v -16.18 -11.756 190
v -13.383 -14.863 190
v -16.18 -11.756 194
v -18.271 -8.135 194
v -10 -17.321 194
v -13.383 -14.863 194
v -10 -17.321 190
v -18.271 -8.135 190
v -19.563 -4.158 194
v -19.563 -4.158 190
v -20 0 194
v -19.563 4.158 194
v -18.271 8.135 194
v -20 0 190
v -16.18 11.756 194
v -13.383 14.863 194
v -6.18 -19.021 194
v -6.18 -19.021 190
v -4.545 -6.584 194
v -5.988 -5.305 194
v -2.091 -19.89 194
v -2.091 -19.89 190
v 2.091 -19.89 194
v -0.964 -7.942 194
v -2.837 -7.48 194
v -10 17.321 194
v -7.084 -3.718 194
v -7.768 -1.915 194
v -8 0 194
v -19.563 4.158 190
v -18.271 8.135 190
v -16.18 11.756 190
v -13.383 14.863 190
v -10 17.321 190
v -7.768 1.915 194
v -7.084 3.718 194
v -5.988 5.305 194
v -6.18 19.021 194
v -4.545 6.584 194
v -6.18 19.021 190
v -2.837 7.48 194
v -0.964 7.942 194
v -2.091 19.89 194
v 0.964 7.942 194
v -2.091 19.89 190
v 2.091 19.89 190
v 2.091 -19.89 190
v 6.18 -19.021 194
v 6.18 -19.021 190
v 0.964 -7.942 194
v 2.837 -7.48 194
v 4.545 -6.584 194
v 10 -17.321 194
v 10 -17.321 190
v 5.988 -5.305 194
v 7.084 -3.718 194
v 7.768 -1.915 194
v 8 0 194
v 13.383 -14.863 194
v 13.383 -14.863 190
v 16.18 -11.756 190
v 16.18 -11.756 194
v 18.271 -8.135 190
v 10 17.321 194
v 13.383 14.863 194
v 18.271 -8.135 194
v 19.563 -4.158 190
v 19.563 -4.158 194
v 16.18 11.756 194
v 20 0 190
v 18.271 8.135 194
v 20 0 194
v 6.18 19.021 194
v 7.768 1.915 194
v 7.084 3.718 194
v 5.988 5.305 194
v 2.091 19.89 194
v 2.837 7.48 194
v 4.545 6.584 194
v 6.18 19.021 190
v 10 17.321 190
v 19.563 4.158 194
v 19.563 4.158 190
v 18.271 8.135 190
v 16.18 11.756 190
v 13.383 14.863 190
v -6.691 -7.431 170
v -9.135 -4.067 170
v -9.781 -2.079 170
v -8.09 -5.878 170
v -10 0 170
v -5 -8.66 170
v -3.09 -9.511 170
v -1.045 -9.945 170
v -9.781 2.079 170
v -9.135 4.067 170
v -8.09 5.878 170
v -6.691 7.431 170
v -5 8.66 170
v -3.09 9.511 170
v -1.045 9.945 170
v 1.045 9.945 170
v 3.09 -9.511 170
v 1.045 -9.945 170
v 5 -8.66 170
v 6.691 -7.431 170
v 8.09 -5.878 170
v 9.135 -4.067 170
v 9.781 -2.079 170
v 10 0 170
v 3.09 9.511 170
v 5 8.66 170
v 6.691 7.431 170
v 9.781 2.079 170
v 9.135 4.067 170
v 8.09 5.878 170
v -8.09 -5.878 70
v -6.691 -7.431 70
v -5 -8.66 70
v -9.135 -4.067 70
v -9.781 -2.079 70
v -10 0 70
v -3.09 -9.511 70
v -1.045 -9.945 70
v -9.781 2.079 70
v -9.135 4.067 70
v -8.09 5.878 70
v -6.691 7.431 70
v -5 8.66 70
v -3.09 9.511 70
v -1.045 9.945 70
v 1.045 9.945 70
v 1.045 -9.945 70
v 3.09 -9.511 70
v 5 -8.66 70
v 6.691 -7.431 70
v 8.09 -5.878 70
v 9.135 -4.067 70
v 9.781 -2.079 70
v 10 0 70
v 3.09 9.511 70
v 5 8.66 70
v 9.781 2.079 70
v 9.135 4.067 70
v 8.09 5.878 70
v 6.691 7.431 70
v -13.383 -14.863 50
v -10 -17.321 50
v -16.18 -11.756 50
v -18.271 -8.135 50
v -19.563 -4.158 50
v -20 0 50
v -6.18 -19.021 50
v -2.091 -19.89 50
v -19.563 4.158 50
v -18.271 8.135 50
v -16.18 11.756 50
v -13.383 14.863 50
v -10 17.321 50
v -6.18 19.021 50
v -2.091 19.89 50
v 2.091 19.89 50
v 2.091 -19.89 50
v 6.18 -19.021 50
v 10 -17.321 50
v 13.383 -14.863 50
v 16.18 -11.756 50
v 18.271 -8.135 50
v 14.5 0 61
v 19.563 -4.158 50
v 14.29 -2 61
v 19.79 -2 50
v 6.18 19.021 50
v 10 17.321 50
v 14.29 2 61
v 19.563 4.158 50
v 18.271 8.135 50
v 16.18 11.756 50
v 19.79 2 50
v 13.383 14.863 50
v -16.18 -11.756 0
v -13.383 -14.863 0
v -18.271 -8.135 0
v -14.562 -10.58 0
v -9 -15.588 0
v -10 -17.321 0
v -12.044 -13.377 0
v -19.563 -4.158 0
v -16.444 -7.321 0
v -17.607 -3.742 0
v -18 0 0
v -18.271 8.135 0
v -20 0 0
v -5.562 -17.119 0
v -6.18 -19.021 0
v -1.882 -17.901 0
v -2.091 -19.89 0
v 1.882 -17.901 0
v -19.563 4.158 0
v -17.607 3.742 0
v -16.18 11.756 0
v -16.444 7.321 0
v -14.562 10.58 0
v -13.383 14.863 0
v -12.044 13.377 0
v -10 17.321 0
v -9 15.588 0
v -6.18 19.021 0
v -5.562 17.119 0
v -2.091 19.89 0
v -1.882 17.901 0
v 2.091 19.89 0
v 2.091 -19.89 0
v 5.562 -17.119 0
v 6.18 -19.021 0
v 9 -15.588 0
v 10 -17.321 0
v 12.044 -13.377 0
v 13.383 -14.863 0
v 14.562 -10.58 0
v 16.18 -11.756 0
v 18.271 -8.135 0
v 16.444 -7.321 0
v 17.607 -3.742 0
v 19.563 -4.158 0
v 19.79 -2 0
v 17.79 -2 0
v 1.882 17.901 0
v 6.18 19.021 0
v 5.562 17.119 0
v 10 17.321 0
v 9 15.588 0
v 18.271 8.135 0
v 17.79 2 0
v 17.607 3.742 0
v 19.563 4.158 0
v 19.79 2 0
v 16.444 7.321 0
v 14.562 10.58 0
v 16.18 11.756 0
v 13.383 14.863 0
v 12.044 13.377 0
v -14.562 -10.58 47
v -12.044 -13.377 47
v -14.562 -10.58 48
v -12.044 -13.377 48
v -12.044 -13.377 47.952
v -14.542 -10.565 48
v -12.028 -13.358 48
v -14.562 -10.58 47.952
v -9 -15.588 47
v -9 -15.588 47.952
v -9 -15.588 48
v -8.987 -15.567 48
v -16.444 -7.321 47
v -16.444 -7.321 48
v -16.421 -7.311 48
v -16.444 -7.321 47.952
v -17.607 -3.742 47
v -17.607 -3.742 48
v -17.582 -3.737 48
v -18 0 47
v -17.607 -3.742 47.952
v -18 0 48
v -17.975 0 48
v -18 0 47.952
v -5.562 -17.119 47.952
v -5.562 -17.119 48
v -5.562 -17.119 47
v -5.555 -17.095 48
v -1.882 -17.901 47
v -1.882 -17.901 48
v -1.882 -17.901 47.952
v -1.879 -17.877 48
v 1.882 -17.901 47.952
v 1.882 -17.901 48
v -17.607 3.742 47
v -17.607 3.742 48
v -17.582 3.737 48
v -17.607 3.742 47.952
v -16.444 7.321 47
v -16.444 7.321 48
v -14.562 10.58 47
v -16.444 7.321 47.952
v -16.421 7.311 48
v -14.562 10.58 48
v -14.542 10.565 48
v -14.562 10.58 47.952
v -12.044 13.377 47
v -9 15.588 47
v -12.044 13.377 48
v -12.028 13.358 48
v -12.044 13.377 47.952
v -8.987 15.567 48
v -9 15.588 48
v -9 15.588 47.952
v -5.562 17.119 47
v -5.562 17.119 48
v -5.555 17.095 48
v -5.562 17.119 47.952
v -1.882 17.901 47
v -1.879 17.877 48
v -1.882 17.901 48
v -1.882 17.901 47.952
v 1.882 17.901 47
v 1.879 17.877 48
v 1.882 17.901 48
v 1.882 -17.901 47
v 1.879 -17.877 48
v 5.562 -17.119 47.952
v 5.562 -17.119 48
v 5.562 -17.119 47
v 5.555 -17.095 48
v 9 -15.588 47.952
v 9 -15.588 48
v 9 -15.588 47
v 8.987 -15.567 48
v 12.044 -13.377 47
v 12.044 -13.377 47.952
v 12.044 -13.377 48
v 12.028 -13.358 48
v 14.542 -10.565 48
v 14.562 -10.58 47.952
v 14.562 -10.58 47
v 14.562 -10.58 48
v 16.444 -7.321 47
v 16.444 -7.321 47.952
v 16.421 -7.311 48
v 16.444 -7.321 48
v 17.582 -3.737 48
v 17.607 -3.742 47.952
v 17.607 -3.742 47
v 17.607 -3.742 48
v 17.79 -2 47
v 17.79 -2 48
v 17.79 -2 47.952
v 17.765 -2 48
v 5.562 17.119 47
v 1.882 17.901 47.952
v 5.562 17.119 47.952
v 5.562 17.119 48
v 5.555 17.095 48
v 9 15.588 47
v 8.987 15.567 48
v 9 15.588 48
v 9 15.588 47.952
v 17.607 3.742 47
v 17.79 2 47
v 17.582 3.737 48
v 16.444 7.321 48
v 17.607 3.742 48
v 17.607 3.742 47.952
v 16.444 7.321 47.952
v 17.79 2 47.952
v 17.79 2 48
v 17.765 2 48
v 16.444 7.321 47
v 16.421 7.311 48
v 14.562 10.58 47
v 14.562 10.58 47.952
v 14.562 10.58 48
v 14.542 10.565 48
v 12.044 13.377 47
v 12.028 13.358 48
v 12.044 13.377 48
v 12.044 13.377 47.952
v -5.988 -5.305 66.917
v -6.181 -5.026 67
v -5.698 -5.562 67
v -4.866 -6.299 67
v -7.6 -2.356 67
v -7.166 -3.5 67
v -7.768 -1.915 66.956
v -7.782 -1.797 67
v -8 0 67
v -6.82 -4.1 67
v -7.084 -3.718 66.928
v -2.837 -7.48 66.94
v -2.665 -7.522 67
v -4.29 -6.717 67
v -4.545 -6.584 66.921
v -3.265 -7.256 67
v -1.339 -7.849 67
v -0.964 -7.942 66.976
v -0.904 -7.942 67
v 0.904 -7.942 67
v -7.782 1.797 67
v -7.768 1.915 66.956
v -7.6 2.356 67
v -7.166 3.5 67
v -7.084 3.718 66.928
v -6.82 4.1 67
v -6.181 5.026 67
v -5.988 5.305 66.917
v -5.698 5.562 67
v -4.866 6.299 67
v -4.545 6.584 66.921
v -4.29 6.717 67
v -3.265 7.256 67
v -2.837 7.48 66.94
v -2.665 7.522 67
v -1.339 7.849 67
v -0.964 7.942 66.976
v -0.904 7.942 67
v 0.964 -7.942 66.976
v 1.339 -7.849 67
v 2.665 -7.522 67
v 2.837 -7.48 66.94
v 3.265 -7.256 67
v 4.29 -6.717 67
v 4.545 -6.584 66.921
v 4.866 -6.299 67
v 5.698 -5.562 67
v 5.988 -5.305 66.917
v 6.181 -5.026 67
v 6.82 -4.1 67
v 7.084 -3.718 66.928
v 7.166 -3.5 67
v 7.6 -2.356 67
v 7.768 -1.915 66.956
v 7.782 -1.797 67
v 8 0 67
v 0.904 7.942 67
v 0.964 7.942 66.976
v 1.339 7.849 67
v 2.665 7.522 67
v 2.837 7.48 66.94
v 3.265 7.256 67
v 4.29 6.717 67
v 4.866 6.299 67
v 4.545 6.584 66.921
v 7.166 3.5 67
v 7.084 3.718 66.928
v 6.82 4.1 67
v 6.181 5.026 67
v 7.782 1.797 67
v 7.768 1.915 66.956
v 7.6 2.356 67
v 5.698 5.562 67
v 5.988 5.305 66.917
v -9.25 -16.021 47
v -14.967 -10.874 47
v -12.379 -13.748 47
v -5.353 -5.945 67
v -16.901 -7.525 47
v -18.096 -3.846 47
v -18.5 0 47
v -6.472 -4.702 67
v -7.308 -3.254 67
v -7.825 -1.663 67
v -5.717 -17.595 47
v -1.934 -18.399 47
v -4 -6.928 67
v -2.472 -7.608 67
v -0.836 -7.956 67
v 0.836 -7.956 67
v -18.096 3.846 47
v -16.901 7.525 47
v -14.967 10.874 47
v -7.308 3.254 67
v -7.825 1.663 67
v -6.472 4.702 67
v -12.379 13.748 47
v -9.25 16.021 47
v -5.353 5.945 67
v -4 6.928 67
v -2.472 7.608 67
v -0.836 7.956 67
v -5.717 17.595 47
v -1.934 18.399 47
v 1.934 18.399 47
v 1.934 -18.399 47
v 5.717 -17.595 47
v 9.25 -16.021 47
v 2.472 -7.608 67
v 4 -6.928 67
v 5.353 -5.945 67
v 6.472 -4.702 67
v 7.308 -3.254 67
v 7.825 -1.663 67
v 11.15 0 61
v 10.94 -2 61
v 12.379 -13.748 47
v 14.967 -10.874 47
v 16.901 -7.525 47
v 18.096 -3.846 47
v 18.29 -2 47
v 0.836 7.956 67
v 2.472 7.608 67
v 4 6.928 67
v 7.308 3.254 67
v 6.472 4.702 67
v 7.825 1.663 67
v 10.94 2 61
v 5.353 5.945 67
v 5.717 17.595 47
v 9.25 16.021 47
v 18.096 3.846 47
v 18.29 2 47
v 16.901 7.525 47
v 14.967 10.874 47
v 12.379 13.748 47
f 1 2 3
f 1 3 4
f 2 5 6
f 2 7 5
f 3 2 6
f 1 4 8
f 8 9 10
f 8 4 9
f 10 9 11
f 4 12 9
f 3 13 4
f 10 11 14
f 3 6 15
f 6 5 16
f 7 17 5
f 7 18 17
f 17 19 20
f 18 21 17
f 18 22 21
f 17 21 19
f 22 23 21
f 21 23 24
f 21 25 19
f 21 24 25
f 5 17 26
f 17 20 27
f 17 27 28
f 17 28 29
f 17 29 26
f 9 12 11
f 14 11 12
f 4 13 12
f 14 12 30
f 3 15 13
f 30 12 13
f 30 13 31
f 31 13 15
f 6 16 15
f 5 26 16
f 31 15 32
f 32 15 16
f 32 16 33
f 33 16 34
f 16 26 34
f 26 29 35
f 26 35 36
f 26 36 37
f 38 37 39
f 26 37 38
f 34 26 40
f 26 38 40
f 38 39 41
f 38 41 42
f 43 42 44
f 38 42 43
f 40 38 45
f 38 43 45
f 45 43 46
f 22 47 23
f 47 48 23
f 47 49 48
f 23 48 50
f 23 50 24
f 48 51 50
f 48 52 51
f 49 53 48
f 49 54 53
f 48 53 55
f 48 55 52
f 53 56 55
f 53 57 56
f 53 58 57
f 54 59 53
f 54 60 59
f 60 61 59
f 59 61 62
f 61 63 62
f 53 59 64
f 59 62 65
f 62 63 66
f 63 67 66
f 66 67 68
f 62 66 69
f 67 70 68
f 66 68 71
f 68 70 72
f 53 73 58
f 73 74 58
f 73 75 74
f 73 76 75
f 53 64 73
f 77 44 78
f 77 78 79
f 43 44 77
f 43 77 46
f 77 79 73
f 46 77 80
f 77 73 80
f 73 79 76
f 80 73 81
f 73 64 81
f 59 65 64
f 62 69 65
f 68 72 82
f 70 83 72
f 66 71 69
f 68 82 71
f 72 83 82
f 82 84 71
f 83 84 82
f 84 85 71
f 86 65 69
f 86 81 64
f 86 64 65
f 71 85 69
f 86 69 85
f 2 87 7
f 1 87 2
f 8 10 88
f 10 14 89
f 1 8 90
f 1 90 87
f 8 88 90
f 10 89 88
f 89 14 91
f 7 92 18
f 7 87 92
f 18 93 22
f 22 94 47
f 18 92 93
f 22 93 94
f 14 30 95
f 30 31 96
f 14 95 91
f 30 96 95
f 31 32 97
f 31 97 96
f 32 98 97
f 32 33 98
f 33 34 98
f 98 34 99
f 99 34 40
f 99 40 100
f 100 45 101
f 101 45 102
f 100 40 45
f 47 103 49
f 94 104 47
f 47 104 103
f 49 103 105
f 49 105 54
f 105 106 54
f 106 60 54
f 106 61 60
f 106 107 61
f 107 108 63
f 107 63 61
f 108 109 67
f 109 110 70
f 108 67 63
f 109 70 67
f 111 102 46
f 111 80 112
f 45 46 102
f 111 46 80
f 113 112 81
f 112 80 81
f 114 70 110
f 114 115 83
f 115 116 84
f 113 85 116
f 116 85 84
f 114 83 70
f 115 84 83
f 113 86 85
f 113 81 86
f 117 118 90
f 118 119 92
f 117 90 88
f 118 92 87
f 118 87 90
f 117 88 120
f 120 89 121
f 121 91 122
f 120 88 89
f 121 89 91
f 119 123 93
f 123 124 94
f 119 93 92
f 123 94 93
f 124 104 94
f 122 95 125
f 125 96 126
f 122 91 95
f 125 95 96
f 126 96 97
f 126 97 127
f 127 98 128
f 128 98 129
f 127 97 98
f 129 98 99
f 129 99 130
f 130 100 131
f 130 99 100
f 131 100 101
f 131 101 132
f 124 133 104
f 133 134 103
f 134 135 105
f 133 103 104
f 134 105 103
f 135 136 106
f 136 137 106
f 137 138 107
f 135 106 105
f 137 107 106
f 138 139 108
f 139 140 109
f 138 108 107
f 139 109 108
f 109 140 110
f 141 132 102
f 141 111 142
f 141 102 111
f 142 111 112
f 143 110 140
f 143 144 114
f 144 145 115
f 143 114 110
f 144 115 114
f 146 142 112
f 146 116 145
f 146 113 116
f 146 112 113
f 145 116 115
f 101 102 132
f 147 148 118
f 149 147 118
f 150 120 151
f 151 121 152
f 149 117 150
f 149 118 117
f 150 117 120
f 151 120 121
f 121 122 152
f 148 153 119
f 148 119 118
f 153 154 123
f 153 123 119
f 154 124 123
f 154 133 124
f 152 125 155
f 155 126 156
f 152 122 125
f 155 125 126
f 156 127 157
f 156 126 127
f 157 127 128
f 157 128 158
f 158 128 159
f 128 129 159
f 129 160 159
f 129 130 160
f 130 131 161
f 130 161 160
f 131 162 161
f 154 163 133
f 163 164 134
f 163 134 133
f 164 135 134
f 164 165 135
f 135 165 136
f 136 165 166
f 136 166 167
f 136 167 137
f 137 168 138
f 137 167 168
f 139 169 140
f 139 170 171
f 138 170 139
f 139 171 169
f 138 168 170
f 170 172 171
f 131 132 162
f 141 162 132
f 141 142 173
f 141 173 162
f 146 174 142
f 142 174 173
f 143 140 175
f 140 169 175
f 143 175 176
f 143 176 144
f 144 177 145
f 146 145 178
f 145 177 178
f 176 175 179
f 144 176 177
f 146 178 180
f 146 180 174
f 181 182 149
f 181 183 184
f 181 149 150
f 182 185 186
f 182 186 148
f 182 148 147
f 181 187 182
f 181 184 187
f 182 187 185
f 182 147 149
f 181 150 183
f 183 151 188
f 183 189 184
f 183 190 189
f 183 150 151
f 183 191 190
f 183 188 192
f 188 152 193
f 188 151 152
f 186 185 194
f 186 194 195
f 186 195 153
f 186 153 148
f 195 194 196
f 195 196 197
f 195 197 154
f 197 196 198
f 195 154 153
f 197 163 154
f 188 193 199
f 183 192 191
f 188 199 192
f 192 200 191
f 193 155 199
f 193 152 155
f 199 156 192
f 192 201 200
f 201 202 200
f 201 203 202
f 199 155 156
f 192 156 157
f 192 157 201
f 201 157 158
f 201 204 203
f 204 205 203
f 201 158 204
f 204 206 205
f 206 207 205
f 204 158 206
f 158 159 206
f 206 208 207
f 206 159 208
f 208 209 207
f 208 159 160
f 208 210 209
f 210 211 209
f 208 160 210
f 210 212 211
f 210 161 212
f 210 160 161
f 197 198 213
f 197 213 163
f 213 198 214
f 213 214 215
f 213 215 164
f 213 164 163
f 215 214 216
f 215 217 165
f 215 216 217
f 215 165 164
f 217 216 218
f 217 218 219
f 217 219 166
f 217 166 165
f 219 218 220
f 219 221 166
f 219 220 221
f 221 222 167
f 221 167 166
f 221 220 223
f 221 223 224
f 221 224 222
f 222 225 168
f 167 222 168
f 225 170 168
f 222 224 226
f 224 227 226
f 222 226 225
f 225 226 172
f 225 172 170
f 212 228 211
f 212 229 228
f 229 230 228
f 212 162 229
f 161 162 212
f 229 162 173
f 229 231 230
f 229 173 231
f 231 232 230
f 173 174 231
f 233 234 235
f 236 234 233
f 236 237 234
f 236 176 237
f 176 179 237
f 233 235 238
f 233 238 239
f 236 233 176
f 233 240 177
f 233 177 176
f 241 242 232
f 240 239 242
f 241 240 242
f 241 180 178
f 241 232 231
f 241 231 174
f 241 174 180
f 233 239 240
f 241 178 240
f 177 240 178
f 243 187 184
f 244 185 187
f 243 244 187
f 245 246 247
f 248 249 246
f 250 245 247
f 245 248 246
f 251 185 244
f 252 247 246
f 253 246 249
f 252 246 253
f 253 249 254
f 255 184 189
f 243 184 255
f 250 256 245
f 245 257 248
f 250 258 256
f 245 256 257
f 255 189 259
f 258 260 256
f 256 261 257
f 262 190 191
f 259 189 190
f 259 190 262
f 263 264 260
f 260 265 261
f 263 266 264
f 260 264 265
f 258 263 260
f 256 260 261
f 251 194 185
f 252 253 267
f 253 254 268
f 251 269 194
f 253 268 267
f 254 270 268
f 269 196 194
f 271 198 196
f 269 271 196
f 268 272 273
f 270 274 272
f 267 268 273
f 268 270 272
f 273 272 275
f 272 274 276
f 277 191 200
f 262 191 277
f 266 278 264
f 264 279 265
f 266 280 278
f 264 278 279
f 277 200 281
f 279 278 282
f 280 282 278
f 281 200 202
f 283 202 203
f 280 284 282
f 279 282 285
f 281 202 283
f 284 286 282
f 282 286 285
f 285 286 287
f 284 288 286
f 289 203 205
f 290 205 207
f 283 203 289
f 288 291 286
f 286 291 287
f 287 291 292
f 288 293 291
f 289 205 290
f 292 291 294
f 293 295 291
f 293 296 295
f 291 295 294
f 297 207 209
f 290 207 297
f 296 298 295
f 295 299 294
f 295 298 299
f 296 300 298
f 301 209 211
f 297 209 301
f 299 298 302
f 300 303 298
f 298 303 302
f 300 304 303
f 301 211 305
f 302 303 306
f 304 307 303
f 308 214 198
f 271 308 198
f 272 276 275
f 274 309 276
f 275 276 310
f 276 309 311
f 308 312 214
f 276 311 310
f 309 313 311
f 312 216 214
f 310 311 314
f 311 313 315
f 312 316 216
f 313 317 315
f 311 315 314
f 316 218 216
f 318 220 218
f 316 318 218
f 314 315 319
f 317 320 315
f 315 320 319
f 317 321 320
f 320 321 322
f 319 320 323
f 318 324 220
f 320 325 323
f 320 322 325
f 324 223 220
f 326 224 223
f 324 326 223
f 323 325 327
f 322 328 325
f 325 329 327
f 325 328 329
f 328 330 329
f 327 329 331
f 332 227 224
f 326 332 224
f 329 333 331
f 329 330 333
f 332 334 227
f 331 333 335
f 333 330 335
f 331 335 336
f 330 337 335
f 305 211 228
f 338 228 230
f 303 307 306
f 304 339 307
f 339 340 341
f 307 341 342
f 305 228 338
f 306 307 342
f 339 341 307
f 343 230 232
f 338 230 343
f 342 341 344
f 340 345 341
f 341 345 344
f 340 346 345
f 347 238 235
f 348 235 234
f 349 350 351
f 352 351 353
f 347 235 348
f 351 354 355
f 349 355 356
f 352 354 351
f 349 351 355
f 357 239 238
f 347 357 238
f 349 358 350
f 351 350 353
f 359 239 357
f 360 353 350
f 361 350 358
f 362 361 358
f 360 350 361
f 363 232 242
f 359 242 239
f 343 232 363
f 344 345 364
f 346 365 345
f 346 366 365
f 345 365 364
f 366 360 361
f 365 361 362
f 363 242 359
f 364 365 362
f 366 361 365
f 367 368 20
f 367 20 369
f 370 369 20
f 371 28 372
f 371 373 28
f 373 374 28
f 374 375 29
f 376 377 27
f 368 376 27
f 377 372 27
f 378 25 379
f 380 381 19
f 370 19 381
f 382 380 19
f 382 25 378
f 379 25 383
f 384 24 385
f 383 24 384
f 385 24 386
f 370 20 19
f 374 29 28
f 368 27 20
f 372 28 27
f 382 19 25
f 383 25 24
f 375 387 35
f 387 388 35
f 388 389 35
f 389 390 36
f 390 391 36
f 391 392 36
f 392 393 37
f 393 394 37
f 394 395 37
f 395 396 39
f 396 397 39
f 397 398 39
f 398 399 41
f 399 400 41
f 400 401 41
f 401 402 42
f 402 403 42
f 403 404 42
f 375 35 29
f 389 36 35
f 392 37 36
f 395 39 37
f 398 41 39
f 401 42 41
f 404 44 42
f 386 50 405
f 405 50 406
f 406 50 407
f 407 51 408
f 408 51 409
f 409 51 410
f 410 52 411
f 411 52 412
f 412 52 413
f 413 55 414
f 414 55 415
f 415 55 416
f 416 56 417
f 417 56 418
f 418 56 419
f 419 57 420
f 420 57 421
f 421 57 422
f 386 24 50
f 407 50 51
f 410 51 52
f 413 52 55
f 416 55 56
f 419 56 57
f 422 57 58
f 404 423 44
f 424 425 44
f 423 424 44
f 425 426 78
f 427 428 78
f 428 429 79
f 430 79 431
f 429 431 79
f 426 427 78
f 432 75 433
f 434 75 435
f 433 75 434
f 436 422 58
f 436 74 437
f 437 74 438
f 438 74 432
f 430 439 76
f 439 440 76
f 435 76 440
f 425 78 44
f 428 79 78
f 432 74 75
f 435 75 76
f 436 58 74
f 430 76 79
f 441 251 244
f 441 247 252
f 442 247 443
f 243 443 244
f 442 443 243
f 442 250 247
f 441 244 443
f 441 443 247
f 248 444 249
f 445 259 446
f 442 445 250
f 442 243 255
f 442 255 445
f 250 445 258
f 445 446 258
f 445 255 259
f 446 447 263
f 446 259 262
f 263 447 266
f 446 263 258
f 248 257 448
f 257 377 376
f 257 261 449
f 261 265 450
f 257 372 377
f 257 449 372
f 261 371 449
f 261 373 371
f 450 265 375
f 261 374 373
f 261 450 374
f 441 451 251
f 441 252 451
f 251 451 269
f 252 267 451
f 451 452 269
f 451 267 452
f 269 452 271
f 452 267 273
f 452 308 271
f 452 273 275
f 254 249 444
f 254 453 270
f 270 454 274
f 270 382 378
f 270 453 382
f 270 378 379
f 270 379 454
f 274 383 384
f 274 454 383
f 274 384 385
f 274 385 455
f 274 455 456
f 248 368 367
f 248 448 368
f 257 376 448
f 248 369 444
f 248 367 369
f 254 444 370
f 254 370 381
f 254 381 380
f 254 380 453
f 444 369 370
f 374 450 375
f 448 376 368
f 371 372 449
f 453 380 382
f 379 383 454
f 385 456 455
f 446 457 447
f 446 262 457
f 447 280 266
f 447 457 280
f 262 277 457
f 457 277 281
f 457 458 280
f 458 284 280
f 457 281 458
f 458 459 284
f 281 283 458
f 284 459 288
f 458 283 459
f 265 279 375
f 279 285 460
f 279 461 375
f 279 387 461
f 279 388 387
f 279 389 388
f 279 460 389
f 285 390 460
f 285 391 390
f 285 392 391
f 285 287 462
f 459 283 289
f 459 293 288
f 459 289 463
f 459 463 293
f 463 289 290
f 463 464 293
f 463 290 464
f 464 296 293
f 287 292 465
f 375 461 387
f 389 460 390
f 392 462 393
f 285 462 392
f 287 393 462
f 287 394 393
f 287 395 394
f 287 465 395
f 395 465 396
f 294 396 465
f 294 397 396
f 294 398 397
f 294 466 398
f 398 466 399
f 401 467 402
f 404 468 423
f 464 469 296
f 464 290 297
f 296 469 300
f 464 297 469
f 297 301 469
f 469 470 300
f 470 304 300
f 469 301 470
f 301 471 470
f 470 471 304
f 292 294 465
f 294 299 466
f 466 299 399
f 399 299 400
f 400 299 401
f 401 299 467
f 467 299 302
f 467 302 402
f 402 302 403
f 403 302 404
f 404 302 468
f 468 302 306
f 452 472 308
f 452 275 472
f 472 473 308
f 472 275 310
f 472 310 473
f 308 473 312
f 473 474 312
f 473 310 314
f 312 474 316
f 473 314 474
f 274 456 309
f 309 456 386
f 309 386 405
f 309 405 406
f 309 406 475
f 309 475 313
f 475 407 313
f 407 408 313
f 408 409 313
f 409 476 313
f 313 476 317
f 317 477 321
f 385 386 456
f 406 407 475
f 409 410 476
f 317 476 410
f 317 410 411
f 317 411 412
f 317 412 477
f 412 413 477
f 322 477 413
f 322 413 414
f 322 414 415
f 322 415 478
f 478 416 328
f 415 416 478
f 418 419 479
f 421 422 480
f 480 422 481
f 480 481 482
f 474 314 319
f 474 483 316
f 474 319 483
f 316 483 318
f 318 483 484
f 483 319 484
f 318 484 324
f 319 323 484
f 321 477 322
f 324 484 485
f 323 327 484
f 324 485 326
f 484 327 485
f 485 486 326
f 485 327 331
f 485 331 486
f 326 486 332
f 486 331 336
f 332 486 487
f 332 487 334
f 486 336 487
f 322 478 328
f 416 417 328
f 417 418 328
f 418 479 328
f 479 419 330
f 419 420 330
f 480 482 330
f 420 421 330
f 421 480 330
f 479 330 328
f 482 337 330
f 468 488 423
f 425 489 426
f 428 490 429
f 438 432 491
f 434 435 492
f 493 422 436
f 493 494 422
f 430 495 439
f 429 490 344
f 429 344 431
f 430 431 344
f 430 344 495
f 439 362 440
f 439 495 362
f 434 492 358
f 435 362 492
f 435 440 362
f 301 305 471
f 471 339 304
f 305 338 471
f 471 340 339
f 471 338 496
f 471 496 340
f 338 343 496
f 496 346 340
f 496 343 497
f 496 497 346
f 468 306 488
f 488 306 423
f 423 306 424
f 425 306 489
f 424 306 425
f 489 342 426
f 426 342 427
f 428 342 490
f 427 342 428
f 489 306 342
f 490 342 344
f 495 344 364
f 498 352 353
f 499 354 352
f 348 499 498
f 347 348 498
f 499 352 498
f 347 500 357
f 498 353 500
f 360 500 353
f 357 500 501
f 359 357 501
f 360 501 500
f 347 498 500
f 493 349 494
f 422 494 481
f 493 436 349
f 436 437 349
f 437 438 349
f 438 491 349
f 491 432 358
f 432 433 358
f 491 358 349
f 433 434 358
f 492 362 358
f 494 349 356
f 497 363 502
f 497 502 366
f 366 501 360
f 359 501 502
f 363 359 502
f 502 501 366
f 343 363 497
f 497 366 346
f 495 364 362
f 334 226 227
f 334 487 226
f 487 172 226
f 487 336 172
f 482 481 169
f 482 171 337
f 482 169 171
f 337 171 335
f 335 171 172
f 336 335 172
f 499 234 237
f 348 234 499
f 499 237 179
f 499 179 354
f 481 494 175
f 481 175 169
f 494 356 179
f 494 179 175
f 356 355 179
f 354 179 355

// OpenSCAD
// ===========================
// FD Logo Holder
// ===========================

difference() {
    // Union: Create the main structure
    union() {
        // Top conical section
        translate([0, 0, 190])
        cylinder(h = 4, d = 40);

        // Top conical section
        translate([0, 0, 170])
        cylinder(h = 20, d1 = 20, d2 = 40);
        
        // Middle shaft / mounting pole
        translate([0, 0, 70])
        cylinder(h = 100, d = 20);
        
        // Transition cone (between shaft and base)
        translate([0, 0, 50])
        cylinder(h = 20, d1 = 40, d2 = 20);
        
        // Base disc
        cylinder(h = 50, d = 40);
    }
    
    // Subtraction: Cut-out hole through the center
    translate([0, 0, -2])
    cylinder(h = 50, d = 36);

    // Subtraction: Cut-out hole through the middle shaft
    color("red")
    translate([0, 0, 47])
    cylinder(h = 149, d = 16);

    // Subtraction: Cut-out hole through the transition cone
    color("blue")
    translate([0, 0, 47])
    cylinder(h = 20, d1 = 37, d2 = 16);

    // Subtraction: Cut-out hole through the top conical section
    color("red")
    translate([6, -2, -1])
    cube([20, 4, 62], center = false);

}
